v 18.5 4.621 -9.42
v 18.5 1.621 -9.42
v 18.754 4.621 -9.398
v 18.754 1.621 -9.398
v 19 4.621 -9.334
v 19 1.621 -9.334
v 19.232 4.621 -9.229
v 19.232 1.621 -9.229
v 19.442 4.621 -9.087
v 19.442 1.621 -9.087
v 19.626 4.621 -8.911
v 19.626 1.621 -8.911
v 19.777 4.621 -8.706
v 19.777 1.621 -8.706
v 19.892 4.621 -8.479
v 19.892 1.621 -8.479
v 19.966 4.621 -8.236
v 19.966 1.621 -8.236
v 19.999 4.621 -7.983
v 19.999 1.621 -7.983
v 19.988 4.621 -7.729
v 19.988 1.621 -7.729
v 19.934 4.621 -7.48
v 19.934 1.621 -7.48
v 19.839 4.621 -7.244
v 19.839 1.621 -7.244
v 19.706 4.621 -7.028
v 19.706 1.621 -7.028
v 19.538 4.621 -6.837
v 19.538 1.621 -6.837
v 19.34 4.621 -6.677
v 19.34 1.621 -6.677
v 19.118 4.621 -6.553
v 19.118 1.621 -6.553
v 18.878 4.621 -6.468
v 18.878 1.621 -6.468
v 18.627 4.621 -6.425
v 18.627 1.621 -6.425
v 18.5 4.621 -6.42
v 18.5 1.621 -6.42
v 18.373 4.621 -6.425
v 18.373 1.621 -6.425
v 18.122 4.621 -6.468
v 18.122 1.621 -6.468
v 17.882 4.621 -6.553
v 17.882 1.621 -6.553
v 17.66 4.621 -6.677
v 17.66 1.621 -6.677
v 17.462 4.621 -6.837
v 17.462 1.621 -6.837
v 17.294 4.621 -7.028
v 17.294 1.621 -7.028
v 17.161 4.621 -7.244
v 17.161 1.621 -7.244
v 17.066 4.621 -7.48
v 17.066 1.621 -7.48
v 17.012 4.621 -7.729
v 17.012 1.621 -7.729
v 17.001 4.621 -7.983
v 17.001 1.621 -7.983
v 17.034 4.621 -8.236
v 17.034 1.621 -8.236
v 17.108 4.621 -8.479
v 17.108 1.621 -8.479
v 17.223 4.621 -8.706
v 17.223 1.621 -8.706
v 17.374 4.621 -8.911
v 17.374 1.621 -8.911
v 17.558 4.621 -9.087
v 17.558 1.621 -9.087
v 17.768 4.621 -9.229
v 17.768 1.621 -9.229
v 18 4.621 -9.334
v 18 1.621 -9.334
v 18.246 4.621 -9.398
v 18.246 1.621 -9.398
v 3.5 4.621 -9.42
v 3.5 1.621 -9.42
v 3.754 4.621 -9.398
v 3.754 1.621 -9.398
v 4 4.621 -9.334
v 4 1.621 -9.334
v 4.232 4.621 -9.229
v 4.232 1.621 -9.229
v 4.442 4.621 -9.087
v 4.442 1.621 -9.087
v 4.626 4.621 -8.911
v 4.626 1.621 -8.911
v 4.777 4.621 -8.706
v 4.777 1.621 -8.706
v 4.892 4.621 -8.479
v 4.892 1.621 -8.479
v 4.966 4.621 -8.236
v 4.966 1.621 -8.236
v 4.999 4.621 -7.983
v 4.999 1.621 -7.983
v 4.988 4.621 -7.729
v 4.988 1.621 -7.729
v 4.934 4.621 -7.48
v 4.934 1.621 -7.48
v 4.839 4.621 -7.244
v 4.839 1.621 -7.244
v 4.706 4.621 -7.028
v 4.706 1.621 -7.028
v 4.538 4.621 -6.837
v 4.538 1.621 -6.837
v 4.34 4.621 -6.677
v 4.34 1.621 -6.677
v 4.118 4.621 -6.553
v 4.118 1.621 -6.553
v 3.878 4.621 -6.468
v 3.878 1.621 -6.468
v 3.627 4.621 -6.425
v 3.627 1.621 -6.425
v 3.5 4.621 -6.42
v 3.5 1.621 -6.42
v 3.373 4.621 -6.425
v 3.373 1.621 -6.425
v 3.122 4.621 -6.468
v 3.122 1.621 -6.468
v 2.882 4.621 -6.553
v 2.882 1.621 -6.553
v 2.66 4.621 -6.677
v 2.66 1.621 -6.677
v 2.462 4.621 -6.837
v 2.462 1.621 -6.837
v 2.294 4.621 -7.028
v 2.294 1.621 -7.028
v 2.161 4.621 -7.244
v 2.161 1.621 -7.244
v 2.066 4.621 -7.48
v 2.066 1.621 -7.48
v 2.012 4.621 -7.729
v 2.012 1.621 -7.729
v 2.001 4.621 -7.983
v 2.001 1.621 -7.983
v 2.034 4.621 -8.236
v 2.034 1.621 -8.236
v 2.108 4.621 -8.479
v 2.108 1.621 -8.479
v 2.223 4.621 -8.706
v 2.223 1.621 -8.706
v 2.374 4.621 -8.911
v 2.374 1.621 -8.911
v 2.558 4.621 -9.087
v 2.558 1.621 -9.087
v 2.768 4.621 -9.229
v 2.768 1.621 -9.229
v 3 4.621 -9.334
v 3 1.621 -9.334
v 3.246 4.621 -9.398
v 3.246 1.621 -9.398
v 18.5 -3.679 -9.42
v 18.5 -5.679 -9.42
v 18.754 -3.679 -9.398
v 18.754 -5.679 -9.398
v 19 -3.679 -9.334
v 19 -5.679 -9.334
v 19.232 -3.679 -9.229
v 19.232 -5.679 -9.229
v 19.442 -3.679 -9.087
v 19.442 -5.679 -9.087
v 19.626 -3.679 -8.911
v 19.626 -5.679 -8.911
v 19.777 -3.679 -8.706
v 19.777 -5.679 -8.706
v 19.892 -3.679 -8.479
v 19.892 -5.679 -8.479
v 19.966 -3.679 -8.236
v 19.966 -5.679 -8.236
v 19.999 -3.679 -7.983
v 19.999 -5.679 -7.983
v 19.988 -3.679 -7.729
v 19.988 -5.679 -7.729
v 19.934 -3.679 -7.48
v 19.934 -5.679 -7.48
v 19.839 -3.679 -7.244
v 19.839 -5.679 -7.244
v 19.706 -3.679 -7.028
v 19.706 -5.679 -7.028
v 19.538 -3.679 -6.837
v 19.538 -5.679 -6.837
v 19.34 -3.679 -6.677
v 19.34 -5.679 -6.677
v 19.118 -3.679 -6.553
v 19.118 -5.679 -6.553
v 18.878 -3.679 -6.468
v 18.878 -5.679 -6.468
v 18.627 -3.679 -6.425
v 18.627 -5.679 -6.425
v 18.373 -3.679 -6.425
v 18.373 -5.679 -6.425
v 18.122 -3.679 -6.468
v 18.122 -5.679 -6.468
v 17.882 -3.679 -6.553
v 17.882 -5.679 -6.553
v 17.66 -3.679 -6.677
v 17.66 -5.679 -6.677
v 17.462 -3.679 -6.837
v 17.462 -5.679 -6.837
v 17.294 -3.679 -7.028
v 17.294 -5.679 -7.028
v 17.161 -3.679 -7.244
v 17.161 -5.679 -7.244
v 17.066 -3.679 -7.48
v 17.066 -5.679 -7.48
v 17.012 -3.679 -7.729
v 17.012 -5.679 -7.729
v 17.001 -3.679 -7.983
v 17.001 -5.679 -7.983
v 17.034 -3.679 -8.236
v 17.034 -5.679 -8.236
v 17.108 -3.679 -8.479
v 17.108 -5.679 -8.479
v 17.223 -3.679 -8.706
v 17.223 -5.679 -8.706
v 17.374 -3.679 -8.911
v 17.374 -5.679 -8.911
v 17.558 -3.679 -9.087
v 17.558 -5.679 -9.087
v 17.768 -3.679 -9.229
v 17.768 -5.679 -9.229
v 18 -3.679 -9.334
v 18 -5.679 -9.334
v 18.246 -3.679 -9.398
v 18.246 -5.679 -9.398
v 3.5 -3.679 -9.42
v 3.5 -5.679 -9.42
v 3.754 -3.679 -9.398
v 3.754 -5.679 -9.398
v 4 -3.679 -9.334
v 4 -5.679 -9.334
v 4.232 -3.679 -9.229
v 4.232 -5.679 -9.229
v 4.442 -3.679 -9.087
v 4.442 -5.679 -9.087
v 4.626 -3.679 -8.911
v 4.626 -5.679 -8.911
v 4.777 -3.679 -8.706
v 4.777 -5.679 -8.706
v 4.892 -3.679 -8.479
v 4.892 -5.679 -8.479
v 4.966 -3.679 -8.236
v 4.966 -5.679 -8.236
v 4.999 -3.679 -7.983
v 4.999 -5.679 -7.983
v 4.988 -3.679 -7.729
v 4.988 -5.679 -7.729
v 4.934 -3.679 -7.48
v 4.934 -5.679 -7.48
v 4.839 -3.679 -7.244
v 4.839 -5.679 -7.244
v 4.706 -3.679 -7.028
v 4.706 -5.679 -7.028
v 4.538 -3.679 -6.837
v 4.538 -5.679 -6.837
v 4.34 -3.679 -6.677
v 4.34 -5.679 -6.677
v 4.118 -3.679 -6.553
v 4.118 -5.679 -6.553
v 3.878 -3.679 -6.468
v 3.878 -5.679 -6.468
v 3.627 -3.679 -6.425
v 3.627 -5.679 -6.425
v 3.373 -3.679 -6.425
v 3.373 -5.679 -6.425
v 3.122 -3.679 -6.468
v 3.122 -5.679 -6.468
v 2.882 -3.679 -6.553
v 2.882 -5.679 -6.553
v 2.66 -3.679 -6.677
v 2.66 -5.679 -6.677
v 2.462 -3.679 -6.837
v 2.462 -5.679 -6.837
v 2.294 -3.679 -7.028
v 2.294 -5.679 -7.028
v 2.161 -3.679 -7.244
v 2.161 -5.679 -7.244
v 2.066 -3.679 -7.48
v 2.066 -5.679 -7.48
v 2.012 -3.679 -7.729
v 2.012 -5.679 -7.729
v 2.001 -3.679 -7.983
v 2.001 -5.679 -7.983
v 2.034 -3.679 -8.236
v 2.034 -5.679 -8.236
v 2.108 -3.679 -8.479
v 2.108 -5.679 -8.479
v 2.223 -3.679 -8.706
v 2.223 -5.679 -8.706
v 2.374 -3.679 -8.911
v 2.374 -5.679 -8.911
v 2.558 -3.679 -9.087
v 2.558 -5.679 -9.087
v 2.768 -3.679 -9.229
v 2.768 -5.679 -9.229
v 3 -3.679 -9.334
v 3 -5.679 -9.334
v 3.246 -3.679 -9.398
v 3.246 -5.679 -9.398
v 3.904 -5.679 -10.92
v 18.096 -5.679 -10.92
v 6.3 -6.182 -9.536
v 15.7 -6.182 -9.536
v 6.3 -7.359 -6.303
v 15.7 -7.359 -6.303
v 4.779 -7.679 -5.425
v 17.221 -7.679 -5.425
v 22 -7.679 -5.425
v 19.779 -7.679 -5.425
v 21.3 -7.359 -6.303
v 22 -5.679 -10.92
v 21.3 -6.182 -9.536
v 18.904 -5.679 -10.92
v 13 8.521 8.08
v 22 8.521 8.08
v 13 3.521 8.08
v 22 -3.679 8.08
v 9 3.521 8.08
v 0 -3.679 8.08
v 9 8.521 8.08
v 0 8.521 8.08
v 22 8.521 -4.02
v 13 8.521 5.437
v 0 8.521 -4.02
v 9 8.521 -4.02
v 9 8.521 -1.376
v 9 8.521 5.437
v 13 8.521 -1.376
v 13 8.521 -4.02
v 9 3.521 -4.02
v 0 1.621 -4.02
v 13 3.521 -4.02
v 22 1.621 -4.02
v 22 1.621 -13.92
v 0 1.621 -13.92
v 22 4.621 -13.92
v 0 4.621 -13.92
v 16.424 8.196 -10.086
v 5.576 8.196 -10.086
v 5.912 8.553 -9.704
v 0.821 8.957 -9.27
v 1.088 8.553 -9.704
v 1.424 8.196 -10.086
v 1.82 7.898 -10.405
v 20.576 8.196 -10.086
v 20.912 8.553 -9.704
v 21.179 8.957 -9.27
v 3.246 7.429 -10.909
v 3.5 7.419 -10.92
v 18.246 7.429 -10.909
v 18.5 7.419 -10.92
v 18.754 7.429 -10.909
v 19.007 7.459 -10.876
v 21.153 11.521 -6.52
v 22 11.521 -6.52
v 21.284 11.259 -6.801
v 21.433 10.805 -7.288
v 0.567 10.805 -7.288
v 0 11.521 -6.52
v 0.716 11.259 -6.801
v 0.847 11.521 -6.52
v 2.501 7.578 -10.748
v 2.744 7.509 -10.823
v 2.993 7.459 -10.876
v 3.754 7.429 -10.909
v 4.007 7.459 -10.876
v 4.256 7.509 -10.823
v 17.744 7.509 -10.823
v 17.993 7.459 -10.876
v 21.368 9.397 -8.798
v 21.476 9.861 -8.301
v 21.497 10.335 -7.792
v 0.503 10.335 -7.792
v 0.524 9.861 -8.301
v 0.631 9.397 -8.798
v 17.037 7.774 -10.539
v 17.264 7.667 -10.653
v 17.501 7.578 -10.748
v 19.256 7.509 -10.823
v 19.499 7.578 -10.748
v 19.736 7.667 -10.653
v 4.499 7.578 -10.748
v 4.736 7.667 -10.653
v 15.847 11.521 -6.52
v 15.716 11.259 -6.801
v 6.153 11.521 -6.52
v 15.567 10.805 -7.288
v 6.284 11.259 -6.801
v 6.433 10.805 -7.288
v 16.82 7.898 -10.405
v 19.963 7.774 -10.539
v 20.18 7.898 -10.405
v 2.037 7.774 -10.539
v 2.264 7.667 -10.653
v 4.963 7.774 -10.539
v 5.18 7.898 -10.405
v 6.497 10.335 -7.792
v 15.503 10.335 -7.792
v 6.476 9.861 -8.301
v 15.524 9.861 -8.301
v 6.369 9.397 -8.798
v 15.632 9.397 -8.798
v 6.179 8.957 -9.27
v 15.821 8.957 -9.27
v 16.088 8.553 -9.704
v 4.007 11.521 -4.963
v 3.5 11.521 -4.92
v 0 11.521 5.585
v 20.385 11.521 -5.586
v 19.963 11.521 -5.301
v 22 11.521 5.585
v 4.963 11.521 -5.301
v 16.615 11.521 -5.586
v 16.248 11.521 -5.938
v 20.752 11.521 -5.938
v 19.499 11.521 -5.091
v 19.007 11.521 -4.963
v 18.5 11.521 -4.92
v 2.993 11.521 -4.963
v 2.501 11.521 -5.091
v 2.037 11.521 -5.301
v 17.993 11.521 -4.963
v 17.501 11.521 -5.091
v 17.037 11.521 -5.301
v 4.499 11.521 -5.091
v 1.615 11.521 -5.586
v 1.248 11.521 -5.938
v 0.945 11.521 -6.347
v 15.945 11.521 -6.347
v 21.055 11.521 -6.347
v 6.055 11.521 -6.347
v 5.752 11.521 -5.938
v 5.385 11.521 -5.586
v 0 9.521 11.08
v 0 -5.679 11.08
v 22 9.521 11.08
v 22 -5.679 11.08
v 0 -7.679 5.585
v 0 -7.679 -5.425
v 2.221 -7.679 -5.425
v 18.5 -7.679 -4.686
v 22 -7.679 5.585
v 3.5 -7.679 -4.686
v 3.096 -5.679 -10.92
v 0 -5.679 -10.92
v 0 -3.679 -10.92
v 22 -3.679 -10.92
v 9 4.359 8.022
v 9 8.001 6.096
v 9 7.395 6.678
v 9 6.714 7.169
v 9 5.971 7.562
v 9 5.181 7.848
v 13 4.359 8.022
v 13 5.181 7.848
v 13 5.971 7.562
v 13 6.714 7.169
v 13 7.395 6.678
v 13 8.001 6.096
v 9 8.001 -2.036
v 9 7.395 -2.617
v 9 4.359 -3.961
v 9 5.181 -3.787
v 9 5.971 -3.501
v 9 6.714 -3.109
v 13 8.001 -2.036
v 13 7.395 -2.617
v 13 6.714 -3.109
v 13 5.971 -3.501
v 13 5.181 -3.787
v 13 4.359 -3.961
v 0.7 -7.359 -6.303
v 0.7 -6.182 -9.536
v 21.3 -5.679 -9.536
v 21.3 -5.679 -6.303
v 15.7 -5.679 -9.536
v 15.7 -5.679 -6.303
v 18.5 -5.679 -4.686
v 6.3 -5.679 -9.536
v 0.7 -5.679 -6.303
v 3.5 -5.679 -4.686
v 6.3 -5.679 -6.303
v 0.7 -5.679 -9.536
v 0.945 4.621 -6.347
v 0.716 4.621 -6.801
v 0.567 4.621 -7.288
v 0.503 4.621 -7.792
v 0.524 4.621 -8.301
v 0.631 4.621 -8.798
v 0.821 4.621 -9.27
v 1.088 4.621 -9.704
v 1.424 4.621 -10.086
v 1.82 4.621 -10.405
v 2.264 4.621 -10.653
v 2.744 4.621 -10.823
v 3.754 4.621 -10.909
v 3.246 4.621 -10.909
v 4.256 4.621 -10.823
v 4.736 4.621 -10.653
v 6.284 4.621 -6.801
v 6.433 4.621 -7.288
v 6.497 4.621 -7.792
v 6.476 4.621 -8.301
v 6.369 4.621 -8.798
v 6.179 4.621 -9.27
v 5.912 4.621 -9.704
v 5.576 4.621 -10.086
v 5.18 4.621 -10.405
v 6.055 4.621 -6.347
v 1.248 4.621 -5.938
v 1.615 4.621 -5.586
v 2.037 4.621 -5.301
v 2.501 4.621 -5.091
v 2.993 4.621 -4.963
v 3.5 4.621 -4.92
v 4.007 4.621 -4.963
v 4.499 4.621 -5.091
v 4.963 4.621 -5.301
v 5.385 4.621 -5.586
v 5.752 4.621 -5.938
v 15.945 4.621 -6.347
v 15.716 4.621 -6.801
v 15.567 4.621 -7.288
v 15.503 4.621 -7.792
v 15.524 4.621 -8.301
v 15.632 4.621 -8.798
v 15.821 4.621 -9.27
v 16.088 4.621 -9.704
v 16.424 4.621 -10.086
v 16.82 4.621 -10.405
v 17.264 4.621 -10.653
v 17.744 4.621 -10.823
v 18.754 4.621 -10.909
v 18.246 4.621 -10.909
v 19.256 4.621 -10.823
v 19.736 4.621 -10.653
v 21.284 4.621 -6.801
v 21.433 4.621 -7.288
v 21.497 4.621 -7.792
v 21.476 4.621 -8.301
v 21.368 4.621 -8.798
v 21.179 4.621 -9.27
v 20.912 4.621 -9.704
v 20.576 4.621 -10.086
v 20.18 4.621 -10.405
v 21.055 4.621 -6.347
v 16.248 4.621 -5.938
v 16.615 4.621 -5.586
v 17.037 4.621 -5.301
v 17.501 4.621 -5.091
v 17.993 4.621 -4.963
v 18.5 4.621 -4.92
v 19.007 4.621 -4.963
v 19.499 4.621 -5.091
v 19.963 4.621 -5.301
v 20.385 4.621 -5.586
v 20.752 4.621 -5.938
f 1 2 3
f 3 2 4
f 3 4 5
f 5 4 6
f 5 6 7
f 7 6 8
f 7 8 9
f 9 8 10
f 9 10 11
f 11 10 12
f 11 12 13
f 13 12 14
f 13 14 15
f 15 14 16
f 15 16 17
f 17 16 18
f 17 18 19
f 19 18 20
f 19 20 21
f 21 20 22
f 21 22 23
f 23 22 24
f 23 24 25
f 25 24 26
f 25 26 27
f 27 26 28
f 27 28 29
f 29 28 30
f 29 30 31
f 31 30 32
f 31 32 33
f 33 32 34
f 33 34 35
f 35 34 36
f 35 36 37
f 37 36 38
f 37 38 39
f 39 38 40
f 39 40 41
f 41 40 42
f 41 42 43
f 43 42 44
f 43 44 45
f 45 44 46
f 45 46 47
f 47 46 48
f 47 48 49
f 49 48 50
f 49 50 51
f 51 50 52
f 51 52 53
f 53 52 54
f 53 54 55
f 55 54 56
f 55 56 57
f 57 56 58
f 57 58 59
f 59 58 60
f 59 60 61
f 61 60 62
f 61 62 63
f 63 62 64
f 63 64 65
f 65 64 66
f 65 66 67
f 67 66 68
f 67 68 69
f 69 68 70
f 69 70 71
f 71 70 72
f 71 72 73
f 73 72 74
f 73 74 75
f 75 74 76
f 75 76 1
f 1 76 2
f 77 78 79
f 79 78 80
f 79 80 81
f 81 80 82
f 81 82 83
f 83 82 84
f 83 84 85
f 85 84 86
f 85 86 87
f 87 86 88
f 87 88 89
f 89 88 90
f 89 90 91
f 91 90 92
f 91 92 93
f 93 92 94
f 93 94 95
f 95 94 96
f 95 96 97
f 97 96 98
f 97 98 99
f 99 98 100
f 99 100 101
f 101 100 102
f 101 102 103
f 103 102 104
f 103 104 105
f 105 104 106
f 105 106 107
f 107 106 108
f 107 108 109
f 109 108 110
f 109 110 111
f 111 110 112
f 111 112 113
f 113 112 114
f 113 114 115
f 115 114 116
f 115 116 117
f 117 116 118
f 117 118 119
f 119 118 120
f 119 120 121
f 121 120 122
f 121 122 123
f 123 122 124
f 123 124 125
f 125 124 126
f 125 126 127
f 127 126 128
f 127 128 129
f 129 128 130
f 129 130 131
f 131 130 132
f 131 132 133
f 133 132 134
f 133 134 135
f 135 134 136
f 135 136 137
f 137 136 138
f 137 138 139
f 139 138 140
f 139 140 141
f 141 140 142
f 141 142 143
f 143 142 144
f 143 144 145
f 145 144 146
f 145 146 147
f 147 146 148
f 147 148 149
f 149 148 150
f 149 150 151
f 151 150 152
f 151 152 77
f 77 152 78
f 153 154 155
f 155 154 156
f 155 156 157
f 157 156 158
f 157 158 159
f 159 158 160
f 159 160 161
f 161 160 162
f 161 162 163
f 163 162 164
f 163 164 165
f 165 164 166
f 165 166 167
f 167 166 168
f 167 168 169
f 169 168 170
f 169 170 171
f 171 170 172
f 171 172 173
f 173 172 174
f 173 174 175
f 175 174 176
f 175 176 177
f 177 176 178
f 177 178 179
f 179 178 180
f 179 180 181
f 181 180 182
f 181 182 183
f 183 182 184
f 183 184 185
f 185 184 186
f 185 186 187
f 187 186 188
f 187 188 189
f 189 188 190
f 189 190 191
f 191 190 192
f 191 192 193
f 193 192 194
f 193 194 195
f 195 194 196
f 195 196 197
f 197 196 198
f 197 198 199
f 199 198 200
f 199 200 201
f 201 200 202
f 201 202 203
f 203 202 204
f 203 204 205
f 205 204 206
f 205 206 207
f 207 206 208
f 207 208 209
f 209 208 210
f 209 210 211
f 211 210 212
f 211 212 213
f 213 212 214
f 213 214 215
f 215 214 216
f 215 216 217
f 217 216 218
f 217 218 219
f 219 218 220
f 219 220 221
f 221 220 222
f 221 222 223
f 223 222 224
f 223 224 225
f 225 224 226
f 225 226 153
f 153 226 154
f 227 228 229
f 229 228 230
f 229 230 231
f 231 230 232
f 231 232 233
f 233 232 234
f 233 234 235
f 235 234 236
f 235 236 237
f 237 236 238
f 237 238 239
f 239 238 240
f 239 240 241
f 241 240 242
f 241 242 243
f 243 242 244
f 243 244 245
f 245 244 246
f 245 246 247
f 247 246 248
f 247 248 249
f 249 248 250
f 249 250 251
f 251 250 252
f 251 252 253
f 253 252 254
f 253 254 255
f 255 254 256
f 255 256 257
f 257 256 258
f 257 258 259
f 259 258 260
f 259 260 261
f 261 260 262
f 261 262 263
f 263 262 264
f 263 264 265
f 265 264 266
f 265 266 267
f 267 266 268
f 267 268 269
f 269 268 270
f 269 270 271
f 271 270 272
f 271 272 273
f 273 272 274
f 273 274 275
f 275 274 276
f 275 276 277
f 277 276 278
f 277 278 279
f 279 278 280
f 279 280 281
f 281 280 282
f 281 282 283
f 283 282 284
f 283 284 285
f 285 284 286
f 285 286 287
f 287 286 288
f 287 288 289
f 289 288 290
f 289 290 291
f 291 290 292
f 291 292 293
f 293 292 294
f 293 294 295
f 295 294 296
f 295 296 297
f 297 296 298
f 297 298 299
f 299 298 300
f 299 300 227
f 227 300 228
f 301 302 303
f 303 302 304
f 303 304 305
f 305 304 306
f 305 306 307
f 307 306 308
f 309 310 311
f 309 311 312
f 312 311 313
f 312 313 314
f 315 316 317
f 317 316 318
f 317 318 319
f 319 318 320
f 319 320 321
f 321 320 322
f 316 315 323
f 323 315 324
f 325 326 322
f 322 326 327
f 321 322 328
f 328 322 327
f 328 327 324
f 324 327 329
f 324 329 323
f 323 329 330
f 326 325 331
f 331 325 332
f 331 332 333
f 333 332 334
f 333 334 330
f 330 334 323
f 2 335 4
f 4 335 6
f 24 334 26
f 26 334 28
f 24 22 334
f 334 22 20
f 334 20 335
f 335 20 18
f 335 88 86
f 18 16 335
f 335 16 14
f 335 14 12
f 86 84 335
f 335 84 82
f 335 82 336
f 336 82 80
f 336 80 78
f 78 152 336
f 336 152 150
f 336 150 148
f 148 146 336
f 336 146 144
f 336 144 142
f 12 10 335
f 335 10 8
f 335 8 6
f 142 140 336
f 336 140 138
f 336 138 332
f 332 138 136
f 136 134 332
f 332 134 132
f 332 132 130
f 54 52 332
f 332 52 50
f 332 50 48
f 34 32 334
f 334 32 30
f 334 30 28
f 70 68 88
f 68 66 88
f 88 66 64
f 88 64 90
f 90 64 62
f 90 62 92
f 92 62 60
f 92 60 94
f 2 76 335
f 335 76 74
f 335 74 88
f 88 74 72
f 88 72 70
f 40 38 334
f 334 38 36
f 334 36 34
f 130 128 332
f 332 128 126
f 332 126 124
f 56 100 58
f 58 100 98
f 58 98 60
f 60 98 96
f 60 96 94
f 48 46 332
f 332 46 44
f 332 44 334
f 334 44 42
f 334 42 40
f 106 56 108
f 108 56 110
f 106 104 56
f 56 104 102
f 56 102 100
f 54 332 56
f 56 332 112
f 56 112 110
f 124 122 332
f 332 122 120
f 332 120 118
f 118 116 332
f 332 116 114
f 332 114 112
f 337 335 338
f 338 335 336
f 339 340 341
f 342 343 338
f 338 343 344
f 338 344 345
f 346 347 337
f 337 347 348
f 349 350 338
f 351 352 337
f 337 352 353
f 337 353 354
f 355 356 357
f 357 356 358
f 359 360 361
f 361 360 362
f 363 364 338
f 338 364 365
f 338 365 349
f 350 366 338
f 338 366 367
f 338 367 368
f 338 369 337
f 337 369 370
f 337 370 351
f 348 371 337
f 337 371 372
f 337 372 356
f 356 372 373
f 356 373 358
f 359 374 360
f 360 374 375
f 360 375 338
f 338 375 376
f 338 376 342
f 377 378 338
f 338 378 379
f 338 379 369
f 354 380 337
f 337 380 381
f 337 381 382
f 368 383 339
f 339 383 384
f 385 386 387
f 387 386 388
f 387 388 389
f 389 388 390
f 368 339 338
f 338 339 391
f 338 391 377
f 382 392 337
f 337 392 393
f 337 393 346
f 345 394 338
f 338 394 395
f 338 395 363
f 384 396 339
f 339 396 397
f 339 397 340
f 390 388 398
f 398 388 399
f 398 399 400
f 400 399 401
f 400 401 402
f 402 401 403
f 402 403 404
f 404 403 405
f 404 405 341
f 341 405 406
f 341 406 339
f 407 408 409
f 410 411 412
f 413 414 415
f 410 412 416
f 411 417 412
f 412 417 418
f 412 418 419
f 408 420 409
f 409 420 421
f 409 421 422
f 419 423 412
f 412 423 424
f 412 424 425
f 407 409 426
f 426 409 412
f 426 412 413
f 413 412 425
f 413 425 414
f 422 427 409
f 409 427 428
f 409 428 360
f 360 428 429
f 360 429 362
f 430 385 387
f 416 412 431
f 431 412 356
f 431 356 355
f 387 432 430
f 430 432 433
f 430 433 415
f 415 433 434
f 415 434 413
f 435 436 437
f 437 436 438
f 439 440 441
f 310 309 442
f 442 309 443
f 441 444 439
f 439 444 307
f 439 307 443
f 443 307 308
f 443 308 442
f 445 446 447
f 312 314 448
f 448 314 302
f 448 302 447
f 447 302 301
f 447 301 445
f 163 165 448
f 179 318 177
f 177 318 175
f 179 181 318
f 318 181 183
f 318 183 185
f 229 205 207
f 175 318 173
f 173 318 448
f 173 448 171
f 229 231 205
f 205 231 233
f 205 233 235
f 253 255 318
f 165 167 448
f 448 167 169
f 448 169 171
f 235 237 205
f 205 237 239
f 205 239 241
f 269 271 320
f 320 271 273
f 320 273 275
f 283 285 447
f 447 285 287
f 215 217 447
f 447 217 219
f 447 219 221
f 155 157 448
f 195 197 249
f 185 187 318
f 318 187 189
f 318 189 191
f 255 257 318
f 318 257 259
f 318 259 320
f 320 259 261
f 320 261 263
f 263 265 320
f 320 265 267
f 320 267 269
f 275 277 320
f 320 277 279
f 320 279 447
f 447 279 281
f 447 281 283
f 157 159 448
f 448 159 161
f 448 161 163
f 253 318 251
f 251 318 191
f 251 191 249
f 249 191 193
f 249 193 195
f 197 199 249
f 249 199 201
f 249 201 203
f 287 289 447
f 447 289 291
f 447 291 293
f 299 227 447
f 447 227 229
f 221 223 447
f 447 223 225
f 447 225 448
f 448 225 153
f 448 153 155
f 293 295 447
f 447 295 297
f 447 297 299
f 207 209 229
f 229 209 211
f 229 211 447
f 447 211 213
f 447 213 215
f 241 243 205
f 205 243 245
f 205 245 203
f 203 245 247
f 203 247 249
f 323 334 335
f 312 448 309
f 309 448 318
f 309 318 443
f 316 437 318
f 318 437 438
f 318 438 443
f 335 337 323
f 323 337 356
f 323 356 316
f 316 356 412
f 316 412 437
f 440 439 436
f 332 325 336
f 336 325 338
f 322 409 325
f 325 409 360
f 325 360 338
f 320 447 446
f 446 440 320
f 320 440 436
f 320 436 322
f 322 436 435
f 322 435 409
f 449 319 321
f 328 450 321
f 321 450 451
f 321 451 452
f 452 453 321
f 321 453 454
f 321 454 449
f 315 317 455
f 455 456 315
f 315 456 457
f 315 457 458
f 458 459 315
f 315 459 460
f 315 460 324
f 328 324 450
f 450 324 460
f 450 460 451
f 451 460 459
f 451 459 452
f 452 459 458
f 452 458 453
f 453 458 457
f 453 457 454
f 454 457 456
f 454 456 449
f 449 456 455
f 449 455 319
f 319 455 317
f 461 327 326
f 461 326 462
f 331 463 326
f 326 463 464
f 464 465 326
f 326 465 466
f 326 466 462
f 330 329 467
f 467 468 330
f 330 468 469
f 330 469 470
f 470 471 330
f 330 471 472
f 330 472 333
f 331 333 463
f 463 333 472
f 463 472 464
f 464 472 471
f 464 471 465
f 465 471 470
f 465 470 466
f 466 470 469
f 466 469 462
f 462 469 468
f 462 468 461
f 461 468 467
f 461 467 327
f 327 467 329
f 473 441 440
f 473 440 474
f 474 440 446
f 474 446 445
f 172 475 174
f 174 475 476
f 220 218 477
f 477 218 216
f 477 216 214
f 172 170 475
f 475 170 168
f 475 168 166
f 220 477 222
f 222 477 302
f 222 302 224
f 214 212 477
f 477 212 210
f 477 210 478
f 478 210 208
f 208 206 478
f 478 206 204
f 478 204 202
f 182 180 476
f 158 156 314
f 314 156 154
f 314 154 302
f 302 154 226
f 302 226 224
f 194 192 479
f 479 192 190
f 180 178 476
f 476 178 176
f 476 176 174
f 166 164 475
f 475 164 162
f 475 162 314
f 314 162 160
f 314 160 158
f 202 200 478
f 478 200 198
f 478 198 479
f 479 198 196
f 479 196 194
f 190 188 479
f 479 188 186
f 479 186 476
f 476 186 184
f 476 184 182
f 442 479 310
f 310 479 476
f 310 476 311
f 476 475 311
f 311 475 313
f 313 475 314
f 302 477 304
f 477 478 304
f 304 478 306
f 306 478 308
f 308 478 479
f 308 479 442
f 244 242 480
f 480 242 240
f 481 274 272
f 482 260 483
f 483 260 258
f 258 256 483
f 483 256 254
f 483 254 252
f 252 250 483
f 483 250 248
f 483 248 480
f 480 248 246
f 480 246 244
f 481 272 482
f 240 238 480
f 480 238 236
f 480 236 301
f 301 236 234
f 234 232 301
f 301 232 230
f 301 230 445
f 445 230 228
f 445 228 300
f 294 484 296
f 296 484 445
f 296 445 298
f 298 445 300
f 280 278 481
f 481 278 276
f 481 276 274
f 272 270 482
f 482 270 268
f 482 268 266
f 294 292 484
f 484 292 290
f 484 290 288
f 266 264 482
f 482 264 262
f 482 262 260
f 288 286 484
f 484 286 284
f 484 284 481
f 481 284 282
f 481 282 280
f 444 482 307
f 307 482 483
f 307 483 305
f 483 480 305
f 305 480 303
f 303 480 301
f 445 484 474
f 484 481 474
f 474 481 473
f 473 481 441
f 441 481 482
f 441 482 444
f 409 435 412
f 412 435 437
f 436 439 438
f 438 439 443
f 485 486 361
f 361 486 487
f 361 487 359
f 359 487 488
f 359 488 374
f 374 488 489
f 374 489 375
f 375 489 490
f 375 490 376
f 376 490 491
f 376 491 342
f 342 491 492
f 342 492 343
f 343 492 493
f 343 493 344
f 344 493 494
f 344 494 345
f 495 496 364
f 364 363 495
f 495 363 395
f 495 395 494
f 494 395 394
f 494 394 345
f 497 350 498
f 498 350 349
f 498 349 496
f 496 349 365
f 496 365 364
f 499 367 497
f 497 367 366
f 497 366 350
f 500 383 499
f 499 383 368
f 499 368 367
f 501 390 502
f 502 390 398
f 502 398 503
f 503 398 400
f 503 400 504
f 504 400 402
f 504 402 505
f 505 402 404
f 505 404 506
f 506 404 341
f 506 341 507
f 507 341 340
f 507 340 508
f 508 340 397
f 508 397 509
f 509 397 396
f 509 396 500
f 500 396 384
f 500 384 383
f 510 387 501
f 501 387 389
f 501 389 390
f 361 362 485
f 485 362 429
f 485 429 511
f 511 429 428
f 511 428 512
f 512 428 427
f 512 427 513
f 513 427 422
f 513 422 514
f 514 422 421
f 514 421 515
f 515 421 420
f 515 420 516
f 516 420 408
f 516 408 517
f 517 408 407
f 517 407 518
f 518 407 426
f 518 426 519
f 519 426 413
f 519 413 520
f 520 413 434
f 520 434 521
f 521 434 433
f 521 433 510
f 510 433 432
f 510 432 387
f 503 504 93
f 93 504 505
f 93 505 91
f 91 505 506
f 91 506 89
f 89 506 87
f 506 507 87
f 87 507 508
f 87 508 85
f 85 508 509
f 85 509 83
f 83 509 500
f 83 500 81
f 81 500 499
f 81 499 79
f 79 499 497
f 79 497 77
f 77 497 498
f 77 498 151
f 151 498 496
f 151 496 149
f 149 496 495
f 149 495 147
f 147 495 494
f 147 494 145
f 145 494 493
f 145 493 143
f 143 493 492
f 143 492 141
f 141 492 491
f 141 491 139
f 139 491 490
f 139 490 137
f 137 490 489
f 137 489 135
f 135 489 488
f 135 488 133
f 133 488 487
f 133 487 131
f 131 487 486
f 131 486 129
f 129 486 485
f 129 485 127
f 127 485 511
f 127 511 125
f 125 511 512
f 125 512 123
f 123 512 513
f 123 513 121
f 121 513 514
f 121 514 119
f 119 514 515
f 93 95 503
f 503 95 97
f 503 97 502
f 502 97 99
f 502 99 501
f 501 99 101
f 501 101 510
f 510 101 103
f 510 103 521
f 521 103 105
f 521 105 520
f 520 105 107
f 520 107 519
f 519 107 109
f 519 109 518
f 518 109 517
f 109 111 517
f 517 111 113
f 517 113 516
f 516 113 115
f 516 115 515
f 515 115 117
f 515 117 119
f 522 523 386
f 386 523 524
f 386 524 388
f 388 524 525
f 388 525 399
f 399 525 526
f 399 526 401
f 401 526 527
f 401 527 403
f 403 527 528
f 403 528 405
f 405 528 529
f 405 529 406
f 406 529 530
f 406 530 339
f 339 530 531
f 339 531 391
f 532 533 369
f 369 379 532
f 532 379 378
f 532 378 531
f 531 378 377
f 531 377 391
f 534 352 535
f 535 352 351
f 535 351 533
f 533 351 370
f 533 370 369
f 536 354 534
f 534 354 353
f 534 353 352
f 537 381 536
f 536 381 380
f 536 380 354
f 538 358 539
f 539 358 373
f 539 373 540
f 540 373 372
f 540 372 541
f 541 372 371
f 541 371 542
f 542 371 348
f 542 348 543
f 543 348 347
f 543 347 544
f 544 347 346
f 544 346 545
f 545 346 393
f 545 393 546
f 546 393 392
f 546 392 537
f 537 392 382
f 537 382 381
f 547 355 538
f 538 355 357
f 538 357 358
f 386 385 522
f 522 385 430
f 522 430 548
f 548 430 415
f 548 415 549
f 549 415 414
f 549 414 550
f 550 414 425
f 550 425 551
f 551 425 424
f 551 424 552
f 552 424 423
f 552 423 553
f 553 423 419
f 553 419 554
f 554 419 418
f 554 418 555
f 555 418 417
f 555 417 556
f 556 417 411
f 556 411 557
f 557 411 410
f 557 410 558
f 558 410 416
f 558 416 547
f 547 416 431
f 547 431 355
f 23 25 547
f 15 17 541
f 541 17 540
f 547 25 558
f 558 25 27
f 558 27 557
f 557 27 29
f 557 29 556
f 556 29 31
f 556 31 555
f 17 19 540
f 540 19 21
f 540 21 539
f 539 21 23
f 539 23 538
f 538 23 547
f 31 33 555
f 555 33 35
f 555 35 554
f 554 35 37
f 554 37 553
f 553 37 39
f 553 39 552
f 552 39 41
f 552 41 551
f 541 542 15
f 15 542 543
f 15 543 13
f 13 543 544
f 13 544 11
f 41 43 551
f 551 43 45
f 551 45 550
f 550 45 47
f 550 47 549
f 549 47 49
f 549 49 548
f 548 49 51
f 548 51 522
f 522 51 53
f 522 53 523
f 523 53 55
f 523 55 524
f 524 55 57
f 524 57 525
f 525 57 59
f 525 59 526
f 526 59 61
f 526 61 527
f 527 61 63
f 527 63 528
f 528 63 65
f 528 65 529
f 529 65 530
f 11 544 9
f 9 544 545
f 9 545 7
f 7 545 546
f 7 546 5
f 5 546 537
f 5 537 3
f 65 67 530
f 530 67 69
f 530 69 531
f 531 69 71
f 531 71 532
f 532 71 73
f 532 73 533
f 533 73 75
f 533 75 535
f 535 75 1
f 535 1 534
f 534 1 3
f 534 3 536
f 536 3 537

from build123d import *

# Parameters (mm, degrees)
SALIENTE_EXTRUIR1_DEPTH = 22
CROQUIS2_R              = 1.5
CORTAR_EXTRUIR1_DEPTH   = 33.348054431
SALIENTE_EXTRUIR2_START = -9
SALIENTE_EXTRUIR2_DEPTH = 4
CHAFL_N1_SIZE           = 2
CHAFL_N1_SIZE_2         = 5.494954839
CORTAR_EXTRUIR2_DEPTH   = 2
CHAFL_N2_SIZE           = 2
CHAFL_N2_SIZE2          = 5.494954839
CROQUIS5_R              = 3
CORTAR_EXTRUIR3_DEPTH   = 6.9


with BuildPart() as part:
    # Croquis1 → Saliente-Extruir1 (new body)
    with BuildSketch(Plane(origin=(0, 0, 0), x_dir=(0, 0, -1), z_dir=(1, 0, 0))):
        Polygon((0, -3.67871106), (10.9196489, -3.67871106), (10.9196489, -7.67871106), (-11.0803511, -7.67871106), (-11.0803511, 11.52128894), (6.5196489, 11.52128894), (13.9196489, 4.62128894), (13.9196489, 1.62128894), (4.0196489, 1.62128894), (4.0196489, 8.52128894), (-8.0803511, 8.52128894), (-8.0803511, -3.67871106), align=None)
    extrude(amount=SALIENTE_EXTRUIR1_DEPTH)

    # Croquis2 → Cortar-Extruir1 (cut, through all)
    with BuildSketch(Plane.XZ.offset(7.67871106)):
        with Locations(Location((3.5, -7.9196489, 0), (0, 0, 270))):
            Circle(CROQUIS2_R)
        with Locations(Location((18.5, -7.9196489, 0), (0, 0, 270))):
            Circle(CROQUIS2_R)
    extrude(amount=-CORTAR_EXTRUIR1_DEPTH, mode=Mode.SUBTRACT)

    # Croquis3 → Saliente-Extruir2 (add)
    with BuildSketch(Plane(origin=(22, 0, 0), x_dir=(0, 0, -1), z_dir=(1, 0, 0)).offset(SALIENTE_EXTRUIR2_START)):
        with BuildLine():
            Line((-8.0803511, 8.52128894), (-8.0803511, 3.52128894))
            ThreePointArc((-8.0803511, 3.52128894), (-7.378728322, 6.349249529), (-5.436595366, 8.52128894))
            Line((-5.436595366, 8.52128894), (-8.0803511, 8.52128894))
        make_face()
        with BuildLine():
            Line((4.0196489, 8.52128894), (4.0196489, 3.52128894))
            ThreePointArc((4.0196489, 3.52128894), (3.318026122, 6.349249529), (1.375893166, 8.52128894))
            Line((1.375893166, 8.52128894), (4.0196489, 8.52128894))
        make_face()
    extrude(amount=-SALIENTE_EXTRUIR2_DEPTH)

    # Chaflán1
    # the kernel refuses this chamfer: 5.494954839, 2 mm, written as the material it takes off along each edge
    with BuildSketch(Plane(origin=(-14.254982899, -7.67871106, -10.9196489), x_dir=(0, 0.9950833631817486, -0.09904090225205035), z_dir=(1, 0, 0))) as chafl_n1_piece_1:
        Polygon((CHAFL_N1_SIZE * 0.995083363182, CHAFL_N1_SIZE * 0.0990409022521), (-CHAFL_N1_SIZE_2 * 0.0990409022504, CHAFL_N1_SIZE_2 * 0.995083363165), (0, 0), align=None)
    extrude(amount=50.509965797, mode=Mode.SUBTRACT)

    # Croquis4 → Cortar-Extruir2 (cut)
    with BuildSketch(Plane.XZ.offset(7.67871106)):
        Polygon((3.5, -4.686487393), (0.7, -6.303068146), (0.7, -9.536229654), (3.5, -11.152810408), (6.3, -9.536229654), (6.3, -6.303068146), align=None)
        Polygon((18.5, -4.686487393), (15.7, -6.303068146), (15.7, -9.536229654), (18.5, -11.152810408), (21.3, -9.536229654), (21.3, -6.303068146), align=None)
    extrude(amount=-CORTAR_EXTRUIR2_DEPTH, mode=Mode.SUBTRACT)

    # Chaflán2
    chafl_n2_edges = [part.edges().sort_by_distance(p)[0] for p in [
        (11, -7.67871106, 11.0803511),
        (11, 11.52128894, 11.0803511),
    ]]
    chafl_n2_side = [part.faces().sort_by_distance(p)[0] for p in [
        (11, 1.92128894, 11.0803511),
    ]]
    chamfer(chafl_n2_edges, length=CHAFL_N2_SIZE, length2=CHAFL_N2_SIZE2, reference=chafl_n2_side[0])

    # Croquis5 → Cortar-Extruir3 (cut)
    with BuildSketch(Plane(origin=(0, 11.52128894, 0), x_dir=(1, 0, 0), z_dir=(0, 1, 0))):
        with Locations(Location((3.5, 7.9196489, 0), (0, 0, 270))):
            Circle(CROQUIS5_R)
        with Locations(Location((18.5, 7.9196489, 0), (0, 0, 270))):
            Circle(CROQUIS5_R)
    extrude(amount=-CORTAR_EXTRUIR3_DEPTH, mode=Mode.SUBTRACT)


solid = part.part
